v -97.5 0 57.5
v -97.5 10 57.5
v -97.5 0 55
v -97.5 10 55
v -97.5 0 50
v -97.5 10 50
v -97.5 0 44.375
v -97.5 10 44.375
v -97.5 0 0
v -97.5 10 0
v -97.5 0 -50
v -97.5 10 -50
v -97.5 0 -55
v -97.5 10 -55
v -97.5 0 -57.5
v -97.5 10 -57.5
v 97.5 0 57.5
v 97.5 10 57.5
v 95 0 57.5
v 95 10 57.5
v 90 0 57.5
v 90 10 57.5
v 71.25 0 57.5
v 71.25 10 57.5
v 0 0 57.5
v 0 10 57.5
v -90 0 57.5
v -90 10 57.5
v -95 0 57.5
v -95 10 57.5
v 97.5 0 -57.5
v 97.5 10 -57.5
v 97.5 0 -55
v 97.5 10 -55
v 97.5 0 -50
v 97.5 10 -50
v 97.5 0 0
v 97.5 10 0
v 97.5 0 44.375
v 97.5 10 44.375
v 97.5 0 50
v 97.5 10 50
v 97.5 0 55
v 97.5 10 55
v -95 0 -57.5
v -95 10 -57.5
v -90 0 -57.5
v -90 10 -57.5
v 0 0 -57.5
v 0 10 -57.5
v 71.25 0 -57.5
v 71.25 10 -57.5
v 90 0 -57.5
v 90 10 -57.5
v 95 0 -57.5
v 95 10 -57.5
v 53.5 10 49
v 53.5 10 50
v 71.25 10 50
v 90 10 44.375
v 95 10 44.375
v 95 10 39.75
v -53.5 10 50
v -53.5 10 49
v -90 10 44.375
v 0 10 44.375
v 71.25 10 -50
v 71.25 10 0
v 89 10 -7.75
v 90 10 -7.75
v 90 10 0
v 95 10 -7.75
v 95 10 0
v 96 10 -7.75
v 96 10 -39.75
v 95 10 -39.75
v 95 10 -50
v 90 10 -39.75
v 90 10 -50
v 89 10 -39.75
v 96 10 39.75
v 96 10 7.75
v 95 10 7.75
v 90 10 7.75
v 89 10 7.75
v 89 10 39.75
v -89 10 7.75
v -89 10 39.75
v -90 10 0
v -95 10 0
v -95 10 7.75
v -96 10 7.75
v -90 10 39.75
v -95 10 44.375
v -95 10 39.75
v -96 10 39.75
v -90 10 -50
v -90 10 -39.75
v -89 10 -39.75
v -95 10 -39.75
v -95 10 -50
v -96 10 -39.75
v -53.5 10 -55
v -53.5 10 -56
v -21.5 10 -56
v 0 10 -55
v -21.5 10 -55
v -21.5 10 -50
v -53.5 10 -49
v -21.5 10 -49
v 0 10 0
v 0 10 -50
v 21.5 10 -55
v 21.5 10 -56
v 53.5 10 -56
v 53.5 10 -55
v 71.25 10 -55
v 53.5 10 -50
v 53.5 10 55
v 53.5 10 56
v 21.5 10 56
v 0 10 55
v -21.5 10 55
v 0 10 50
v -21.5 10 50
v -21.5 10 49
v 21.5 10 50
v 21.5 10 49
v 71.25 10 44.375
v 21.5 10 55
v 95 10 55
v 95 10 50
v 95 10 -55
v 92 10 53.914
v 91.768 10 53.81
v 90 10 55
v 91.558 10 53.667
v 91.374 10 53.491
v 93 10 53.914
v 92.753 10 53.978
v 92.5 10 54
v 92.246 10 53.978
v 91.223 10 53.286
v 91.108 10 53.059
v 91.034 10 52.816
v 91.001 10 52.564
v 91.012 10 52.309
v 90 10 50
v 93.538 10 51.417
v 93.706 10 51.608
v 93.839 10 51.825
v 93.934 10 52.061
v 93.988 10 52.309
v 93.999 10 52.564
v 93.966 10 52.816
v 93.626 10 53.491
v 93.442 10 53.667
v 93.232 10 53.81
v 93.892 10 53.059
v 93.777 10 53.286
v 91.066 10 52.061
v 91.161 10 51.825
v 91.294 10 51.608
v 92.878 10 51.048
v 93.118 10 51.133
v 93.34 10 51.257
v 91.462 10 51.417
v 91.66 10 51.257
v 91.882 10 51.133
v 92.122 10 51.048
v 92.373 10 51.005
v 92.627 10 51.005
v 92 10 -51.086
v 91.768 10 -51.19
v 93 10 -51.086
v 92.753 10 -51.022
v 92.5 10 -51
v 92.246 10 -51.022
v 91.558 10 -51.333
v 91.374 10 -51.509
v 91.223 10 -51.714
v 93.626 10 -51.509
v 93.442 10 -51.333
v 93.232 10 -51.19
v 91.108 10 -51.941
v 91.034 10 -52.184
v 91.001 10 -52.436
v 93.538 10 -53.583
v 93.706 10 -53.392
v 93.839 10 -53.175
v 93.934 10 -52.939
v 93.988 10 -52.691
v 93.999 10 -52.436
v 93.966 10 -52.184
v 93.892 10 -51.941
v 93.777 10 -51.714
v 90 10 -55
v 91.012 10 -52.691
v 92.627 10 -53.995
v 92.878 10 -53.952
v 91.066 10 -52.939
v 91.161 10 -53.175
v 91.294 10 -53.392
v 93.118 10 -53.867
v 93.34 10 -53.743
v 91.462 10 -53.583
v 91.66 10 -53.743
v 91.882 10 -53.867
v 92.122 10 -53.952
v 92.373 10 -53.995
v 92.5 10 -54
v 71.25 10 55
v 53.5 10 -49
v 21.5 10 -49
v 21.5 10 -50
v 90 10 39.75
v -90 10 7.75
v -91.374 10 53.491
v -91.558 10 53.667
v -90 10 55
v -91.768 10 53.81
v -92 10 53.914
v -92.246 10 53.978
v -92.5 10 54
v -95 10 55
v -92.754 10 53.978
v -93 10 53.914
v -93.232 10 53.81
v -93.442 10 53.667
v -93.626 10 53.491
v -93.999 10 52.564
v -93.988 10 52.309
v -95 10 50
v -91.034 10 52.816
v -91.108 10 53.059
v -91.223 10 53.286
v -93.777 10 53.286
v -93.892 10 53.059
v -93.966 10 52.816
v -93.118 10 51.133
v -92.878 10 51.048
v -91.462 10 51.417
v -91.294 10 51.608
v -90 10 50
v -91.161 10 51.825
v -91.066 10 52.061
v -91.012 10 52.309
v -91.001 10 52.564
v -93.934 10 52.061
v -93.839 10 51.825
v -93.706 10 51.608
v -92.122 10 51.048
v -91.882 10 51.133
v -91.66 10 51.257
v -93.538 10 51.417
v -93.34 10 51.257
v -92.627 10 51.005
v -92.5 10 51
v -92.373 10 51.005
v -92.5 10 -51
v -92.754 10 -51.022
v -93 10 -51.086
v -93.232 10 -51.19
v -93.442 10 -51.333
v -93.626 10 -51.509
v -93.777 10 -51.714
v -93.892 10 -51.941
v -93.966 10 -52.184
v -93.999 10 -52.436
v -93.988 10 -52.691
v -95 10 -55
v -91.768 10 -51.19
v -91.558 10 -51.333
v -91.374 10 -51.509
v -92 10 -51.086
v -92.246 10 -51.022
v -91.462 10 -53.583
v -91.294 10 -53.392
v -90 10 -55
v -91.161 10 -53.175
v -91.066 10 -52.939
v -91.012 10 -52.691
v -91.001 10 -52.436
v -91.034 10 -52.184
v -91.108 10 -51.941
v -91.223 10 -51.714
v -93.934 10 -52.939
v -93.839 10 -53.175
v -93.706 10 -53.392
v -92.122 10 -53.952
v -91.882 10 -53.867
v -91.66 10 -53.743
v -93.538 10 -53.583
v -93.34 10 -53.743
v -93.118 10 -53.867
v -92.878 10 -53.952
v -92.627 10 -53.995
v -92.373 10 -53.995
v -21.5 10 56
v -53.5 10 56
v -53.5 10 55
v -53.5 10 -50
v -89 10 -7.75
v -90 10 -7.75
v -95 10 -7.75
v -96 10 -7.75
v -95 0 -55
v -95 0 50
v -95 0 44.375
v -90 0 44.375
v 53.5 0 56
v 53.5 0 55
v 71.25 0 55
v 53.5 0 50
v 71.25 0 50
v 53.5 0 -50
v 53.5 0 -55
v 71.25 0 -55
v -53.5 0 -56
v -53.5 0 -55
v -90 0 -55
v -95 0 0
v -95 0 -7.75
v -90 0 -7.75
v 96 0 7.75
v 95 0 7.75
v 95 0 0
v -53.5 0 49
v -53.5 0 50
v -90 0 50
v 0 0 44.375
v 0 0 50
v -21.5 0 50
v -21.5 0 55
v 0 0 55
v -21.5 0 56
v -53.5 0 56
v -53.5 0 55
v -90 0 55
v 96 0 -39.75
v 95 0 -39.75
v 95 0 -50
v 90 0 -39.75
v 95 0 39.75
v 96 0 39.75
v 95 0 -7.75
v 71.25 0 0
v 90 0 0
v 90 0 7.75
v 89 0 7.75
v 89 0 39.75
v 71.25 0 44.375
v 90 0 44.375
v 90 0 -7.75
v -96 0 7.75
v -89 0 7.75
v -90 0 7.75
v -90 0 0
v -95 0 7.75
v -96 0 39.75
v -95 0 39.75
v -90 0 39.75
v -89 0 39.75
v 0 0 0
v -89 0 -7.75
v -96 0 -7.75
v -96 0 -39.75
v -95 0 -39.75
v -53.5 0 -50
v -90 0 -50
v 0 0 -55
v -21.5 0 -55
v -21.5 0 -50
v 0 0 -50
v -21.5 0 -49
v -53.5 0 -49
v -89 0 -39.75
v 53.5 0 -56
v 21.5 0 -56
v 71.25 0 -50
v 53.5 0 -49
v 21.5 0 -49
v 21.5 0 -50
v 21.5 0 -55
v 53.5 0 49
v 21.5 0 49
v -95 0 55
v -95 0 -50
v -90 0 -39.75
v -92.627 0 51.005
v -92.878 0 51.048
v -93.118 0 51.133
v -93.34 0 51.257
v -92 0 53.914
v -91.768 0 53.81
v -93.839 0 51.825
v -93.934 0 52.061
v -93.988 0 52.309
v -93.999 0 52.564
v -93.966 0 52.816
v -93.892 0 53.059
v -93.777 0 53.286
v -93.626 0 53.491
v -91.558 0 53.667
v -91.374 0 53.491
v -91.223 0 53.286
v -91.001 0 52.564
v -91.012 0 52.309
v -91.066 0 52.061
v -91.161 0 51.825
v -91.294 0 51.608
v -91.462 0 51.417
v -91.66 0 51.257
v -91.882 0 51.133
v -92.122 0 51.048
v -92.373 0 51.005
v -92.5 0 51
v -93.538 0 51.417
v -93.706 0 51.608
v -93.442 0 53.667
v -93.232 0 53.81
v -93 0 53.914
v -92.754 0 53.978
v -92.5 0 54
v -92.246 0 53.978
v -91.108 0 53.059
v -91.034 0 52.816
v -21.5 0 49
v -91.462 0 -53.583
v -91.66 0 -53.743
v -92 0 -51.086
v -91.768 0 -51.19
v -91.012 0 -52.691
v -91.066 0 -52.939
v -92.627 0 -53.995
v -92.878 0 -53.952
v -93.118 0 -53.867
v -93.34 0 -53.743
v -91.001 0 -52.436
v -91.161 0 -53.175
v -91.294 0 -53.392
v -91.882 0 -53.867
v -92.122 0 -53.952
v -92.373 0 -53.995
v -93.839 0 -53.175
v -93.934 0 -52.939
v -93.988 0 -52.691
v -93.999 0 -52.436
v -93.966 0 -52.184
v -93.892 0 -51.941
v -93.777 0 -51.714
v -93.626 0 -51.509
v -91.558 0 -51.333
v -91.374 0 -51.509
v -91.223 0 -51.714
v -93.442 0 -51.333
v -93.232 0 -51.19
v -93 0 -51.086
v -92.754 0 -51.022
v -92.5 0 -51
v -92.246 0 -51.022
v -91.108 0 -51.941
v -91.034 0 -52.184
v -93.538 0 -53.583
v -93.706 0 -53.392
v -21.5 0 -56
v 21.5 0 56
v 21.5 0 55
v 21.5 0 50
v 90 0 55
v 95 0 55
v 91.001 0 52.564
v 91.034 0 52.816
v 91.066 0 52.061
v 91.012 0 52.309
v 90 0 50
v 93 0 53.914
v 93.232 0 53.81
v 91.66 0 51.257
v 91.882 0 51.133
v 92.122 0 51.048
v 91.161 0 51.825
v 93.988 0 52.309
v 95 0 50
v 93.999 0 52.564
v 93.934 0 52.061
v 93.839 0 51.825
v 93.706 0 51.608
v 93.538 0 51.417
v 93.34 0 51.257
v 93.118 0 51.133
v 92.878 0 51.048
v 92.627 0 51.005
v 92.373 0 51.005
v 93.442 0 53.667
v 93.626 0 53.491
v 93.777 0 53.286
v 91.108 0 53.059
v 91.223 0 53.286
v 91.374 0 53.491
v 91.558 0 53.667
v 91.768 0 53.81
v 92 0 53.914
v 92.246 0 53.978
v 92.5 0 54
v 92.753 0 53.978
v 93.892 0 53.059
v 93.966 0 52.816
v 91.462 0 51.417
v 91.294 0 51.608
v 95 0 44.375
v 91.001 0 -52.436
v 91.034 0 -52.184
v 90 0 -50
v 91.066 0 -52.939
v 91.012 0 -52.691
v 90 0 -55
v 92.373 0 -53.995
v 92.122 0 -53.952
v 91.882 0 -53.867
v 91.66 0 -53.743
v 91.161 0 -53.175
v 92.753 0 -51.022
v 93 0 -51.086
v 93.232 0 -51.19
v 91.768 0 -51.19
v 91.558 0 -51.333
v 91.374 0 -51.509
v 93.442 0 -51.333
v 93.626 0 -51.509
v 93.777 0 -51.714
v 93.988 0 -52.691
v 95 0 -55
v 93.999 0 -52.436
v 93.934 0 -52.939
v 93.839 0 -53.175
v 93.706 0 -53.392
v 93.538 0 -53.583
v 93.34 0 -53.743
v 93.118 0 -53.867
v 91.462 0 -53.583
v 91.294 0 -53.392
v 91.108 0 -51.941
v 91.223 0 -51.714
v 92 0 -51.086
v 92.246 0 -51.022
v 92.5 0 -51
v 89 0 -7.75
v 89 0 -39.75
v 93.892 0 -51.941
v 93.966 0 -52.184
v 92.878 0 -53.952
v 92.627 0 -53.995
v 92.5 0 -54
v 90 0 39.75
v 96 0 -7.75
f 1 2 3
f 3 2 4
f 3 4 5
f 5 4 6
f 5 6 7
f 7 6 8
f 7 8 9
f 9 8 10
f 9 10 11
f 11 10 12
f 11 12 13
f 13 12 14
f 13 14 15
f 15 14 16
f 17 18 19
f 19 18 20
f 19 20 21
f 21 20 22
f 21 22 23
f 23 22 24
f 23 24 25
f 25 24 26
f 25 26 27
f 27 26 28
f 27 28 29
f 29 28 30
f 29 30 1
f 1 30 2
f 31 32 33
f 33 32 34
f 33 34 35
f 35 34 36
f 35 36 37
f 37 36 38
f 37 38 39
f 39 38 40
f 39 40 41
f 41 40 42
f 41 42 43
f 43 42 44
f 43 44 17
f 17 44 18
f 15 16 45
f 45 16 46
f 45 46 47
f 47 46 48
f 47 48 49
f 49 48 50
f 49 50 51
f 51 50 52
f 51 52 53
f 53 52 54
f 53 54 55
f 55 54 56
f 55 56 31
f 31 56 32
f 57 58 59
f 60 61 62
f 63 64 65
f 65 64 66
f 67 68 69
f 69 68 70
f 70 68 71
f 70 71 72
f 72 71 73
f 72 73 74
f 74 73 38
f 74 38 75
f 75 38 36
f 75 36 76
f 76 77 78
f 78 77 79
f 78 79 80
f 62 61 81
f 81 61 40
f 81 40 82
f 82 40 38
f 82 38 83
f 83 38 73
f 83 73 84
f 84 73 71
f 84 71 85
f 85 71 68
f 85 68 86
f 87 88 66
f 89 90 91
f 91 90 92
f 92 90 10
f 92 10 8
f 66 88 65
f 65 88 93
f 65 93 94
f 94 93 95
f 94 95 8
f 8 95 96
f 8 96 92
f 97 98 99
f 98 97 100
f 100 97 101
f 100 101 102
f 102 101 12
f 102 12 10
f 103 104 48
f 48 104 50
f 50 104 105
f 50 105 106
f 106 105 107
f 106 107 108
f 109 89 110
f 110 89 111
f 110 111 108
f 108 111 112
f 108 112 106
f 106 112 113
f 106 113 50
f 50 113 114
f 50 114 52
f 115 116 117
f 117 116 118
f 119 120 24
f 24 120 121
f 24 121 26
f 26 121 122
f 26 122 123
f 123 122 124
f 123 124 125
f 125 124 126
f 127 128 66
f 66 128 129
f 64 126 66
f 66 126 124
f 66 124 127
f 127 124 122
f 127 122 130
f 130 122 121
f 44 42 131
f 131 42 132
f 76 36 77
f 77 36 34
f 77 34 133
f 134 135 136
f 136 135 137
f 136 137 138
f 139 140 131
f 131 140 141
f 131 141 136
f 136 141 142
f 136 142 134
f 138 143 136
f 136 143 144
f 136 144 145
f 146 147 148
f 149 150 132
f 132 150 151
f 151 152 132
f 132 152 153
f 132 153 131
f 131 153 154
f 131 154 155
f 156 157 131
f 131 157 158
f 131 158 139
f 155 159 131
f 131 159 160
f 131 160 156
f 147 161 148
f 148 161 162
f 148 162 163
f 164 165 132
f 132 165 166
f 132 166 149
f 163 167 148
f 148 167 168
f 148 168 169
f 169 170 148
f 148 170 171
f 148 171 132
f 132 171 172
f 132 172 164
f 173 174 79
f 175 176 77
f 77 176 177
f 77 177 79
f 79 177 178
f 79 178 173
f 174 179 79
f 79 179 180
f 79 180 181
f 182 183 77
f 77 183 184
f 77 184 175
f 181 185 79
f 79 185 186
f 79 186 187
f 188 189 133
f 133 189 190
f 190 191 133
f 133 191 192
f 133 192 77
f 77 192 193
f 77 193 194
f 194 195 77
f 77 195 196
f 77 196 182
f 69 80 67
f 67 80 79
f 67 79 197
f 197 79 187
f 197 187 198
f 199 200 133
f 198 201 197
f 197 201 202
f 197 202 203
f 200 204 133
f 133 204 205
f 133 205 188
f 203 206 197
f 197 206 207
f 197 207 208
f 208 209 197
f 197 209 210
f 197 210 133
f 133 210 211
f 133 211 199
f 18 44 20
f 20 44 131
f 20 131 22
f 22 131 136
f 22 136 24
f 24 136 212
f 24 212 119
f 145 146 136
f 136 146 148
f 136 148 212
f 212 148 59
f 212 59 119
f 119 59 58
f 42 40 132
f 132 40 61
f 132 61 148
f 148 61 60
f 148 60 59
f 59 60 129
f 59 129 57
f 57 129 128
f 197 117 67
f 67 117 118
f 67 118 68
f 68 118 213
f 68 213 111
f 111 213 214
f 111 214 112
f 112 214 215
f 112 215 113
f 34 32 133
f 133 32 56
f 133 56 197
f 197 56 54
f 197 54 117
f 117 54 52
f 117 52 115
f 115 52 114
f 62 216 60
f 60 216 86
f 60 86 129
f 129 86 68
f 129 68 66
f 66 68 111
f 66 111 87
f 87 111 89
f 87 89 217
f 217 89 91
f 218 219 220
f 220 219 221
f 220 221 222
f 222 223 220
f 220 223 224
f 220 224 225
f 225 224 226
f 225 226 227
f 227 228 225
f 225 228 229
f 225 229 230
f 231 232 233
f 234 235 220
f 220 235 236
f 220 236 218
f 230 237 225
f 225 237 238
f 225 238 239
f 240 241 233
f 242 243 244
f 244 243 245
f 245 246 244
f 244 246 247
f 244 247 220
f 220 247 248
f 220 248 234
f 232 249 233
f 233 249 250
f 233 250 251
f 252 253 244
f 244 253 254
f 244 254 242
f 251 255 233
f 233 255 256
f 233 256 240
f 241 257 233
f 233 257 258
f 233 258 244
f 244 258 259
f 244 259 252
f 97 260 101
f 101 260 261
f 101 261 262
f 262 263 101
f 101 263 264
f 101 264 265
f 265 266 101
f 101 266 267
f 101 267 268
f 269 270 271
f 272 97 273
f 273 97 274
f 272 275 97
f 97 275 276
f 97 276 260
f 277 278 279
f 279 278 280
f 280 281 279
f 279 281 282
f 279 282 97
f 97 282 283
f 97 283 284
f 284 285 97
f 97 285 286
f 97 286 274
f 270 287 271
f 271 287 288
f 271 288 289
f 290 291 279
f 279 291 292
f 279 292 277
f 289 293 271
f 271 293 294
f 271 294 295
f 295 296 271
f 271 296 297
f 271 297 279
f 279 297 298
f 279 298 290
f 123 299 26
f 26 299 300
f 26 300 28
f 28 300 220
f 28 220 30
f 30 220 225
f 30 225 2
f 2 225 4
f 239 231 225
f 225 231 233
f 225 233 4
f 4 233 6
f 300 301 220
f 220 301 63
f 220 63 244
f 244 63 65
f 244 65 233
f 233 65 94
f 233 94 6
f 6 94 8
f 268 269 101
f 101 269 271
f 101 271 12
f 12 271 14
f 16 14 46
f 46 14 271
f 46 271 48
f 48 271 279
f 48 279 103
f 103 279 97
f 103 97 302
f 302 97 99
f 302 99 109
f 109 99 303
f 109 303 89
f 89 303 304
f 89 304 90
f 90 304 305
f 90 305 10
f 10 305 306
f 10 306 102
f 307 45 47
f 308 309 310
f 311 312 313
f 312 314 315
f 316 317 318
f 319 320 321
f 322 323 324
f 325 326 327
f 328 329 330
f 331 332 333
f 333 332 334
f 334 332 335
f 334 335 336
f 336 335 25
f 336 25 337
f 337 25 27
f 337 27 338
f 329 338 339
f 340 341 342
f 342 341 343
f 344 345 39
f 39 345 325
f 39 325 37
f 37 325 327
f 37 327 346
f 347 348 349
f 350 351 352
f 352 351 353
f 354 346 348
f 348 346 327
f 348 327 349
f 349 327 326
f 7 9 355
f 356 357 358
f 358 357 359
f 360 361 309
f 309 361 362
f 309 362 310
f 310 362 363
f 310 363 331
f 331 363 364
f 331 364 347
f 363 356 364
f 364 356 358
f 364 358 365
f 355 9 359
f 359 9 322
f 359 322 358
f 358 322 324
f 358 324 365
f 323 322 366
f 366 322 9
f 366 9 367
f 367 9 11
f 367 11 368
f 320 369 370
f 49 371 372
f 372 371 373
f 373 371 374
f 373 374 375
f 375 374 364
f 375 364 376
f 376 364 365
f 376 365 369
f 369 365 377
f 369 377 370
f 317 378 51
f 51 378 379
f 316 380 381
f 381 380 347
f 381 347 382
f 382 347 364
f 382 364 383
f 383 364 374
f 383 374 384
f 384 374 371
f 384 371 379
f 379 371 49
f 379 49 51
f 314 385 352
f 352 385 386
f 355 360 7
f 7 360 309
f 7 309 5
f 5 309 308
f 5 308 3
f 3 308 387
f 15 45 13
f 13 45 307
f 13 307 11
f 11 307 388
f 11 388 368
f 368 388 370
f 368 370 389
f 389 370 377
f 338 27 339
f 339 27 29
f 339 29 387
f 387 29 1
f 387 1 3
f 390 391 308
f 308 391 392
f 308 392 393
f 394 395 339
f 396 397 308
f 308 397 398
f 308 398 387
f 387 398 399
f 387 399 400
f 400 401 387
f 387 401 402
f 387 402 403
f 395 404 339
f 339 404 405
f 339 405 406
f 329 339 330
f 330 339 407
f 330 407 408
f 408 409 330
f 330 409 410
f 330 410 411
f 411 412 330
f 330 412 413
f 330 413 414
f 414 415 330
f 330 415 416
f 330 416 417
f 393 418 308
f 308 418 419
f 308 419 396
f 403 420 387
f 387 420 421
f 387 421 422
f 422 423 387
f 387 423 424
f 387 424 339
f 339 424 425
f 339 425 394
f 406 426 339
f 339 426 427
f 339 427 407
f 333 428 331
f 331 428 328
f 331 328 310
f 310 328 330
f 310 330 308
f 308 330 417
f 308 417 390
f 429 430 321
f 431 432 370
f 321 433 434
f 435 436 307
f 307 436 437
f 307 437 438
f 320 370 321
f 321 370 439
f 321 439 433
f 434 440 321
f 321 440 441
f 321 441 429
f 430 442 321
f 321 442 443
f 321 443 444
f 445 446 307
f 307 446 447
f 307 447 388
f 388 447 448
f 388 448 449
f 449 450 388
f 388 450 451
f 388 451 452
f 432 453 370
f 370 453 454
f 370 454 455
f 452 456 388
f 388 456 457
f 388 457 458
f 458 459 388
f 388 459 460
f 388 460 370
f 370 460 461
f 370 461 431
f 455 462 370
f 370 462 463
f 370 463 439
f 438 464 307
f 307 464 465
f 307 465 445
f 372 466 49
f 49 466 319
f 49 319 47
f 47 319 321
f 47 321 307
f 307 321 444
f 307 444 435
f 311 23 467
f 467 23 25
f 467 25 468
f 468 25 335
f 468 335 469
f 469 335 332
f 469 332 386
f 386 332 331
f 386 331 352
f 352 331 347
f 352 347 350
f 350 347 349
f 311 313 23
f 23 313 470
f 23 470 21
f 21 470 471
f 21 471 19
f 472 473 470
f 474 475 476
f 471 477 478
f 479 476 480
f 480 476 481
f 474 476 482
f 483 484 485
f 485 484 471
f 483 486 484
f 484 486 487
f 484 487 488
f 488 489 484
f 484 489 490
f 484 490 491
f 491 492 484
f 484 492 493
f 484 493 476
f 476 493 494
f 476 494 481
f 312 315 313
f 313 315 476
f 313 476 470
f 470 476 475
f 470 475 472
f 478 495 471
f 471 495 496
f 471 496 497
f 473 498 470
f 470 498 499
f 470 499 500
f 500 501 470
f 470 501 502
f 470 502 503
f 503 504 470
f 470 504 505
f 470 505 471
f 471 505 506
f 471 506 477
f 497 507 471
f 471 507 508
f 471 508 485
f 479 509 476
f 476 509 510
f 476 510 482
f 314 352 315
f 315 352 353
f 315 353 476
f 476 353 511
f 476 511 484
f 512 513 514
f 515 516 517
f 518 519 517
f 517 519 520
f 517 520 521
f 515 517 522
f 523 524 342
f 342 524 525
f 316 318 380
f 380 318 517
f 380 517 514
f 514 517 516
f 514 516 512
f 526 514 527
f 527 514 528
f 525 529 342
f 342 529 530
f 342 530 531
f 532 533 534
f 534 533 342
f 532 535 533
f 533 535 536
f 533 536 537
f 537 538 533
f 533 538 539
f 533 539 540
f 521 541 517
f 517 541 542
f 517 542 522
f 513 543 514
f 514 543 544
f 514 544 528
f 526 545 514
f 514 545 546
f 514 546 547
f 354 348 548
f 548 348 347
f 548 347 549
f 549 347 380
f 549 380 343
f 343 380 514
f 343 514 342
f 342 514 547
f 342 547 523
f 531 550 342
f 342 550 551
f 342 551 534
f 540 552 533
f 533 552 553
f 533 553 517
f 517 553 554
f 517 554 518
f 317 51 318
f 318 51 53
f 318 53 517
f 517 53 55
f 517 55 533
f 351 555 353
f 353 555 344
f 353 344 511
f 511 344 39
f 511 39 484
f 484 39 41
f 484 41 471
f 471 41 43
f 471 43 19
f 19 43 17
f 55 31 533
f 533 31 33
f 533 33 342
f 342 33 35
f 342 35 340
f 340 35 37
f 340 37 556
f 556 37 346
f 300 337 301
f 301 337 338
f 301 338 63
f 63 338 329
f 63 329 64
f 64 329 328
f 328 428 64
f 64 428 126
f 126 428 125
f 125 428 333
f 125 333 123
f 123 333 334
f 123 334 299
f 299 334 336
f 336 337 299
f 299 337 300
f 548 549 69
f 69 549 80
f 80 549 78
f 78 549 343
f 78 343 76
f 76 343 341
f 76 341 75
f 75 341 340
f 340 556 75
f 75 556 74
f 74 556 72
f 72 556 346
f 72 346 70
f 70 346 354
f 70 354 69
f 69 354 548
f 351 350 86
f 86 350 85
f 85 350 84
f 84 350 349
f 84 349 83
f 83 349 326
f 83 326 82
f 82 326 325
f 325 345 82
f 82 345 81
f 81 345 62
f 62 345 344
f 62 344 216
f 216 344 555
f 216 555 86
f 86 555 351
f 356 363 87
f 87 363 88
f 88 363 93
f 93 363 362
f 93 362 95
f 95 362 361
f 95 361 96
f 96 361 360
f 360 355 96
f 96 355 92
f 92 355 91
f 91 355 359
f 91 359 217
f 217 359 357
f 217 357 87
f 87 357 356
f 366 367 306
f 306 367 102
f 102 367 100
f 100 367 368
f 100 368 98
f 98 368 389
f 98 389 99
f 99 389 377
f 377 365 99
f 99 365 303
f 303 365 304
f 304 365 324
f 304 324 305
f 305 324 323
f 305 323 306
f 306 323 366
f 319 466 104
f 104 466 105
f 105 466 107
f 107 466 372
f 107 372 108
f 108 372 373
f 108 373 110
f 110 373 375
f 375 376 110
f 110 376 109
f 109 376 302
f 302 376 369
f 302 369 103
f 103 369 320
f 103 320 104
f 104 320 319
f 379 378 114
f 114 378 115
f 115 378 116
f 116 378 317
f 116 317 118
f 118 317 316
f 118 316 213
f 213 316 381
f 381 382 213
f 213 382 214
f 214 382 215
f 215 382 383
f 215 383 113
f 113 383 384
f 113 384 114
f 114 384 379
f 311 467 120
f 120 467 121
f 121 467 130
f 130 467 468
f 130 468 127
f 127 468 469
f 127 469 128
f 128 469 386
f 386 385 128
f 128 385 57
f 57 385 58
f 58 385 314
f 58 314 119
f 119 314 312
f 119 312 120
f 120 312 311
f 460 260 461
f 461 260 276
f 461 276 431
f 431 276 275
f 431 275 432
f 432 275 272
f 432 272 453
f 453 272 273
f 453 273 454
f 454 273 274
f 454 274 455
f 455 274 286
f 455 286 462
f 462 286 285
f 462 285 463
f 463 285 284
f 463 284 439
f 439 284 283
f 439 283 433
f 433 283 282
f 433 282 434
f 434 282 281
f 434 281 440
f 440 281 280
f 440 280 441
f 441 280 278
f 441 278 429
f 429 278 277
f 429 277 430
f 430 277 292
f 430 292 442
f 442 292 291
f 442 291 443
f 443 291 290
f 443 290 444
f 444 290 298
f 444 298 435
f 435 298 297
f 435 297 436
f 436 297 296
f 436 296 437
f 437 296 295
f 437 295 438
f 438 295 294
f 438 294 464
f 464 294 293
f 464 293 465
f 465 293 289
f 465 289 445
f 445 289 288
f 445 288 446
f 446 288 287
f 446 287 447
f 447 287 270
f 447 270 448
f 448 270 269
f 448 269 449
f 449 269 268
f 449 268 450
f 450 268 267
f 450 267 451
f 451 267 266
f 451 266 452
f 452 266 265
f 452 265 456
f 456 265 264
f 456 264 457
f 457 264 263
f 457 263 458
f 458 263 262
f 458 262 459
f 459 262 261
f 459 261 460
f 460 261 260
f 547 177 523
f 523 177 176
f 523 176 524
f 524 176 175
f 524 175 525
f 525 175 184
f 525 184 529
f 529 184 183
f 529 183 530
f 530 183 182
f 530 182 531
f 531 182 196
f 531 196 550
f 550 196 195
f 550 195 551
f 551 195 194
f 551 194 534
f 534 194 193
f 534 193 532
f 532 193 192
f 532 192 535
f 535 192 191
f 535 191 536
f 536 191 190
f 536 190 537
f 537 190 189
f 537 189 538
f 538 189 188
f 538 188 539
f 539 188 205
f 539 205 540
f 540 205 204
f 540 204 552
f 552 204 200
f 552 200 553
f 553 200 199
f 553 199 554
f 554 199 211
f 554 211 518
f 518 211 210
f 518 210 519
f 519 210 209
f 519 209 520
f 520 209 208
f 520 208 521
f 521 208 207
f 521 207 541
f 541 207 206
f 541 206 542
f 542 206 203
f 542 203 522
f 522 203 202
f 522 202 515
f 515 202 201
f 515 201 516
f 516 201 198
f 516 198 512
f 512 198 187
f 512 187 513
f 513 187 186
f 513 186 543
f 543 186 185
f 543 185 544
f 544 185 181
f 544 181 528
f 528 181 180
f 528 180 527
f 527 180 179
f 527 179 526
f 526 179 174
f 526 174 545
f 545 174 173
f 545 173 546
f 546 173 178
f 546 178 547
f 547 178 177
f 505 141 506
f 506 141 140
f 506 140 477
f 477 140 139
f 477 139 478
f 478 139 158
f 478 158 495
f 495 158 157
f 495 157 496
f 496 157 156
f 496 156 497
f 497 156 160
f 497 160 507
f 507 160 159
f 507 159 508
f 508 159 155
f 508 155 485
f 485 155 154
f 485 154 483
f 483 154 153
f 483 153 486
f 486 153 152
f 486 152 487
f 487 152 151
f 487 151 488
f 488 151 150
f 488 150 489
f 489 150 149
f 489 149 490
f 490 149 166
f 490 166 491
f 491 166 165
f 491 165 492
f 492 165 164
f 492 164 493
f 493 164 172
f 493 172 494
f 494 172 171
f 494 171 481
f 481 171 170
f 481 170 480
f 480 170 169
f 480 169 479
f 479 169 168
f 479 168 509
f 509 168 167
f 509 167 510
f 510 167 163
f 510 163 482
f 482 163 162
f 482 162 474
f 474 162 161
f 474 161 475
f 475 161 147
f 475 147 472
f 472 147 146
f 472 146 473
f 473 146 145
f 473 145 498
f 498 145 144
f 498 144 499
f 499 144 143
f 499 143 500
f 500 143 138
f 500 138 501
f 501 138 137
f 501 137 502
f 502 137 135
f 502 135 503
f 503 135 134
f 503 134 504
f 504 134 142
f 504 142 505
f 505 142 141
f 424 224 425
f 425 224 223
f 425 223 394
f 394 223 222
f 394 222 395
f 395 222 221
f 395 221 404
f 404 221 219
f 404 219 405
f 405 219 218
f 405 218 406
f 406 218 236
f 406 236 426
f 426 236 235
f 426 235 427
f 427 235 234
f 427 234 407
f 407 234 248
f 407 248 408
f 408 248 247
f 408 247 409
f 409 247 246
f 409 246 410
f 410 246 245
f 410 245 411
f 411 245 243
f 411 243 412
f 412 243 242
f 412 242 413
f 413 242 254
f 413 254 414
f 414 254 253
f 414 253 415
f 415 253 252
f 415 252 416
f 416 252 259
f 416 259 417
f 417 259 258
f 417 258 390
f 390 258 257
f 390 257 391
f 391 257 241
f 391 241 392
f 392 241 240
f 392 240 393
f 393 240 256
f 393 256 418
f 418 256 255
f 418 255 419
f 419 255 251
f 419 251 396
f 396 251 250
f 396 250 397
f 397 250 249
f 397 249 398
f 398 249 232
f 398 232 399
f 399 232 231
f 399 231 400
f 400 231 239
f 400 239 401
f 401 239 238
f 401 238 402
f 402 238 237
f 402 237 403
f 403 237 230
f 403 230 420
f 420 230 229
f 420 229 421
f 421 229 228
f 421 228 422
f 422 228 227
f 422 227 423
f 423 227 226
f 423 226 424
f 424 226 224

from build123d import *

# Parameters (mm, degrees)
ESBO_O1_W                = 195
ESBO_O1_H                = 115
RESSALTO_EXTRUS_O1_DEPTH = 10
ESBO_O2_W                = 32
ESBO_O2_H                = 7
ESBO_O2_W_2              = 7
ESBO_O2_H_2              = 32
CORTE_EXTRUS_O2_DEPTH    = 11
ESBO_O3_R                = 1.5
CORTE_EXTRUS_O3_DEPTH    = 11


with BuildPart() as part:
    # Esboço1 → Ressalto-extrusão1 (new body)
    with BuildSketch(Plane(origin=(0, 0, 0), x_dir=(1, 0, 0), z_dir=(0, 1, 0))):
        Rectangle(ESBO_O1_W, ESBO_O1_H)
    extrude(amount=RESSALTO_EXTRUS_O1_DEPTH)

    # Esboço2 → Corte-extrusão2 (cut, through all)
    with BuildSketch(Plane(origin=(0, 10, 0), x_dir=(1, 0, 0), z_dir=(0, 1, 0))):
        with Locations((-37.5, -52.5)):
            Rectangle(ESBO_O2_W, ESBO_O2_H)
        with Locations((37.5, -52.5)):
            Rectangle(ESBO_O2_W, ESBO_O2_H)
        with Locations((37.5, 52.5)):
            Rectangle(ESBO_O2_W, ESBO_O2_H)
        with Locations((-37.5, 52.5)):
            Rectangle(ESBO_O2_W, ESBO_O2_H)
        with Locations((-92.5, 23.75)):
            Rectangle(ESBO_O2_W_2, ESBO_O2_H_2)
        with Locations((-92.5, -23.75)):
            Rectangle(ESBO_O2_W_2, ESBO_O2_H_2)
        with Locations((92.5, -23.75)):
            Rectangle(ESBO_O2_W_2, ESBO_O2_H_2)
        with Locations((92.5, 23.75)):
            Rectangle(ESBO_O2_W_2, ESBO_O2_H_2)
    extrude(amount=-CORTE_EXTRUS_O2_DEPTH, mode=Mode.SUBTRACT)

    # Esboço3 → Corte-extrusão3 (cut, through all)
    with BuildSketch(Plane(origin=(0, 10, 0), x_dir=(1, 0, 0), z_dir=(0, 1, 0))):
        with Locations((-92.5, 52.5)):
            Circle(ESBO_O3_R)
        with Locations((92.5, 52.5)):
            Circle(ESBO_O3_R)
        with Locations((92.5, -52.5)):
            Circle(ESBO_O3_R)
        with Locations((-92.5, -52.5)):
            Circle(ESBO_O3_R)
    extrude(amount=-CORTE_EXTRUS_O3_DEPTH, mode=Mode.SUBTRACT)


solid = part.part
